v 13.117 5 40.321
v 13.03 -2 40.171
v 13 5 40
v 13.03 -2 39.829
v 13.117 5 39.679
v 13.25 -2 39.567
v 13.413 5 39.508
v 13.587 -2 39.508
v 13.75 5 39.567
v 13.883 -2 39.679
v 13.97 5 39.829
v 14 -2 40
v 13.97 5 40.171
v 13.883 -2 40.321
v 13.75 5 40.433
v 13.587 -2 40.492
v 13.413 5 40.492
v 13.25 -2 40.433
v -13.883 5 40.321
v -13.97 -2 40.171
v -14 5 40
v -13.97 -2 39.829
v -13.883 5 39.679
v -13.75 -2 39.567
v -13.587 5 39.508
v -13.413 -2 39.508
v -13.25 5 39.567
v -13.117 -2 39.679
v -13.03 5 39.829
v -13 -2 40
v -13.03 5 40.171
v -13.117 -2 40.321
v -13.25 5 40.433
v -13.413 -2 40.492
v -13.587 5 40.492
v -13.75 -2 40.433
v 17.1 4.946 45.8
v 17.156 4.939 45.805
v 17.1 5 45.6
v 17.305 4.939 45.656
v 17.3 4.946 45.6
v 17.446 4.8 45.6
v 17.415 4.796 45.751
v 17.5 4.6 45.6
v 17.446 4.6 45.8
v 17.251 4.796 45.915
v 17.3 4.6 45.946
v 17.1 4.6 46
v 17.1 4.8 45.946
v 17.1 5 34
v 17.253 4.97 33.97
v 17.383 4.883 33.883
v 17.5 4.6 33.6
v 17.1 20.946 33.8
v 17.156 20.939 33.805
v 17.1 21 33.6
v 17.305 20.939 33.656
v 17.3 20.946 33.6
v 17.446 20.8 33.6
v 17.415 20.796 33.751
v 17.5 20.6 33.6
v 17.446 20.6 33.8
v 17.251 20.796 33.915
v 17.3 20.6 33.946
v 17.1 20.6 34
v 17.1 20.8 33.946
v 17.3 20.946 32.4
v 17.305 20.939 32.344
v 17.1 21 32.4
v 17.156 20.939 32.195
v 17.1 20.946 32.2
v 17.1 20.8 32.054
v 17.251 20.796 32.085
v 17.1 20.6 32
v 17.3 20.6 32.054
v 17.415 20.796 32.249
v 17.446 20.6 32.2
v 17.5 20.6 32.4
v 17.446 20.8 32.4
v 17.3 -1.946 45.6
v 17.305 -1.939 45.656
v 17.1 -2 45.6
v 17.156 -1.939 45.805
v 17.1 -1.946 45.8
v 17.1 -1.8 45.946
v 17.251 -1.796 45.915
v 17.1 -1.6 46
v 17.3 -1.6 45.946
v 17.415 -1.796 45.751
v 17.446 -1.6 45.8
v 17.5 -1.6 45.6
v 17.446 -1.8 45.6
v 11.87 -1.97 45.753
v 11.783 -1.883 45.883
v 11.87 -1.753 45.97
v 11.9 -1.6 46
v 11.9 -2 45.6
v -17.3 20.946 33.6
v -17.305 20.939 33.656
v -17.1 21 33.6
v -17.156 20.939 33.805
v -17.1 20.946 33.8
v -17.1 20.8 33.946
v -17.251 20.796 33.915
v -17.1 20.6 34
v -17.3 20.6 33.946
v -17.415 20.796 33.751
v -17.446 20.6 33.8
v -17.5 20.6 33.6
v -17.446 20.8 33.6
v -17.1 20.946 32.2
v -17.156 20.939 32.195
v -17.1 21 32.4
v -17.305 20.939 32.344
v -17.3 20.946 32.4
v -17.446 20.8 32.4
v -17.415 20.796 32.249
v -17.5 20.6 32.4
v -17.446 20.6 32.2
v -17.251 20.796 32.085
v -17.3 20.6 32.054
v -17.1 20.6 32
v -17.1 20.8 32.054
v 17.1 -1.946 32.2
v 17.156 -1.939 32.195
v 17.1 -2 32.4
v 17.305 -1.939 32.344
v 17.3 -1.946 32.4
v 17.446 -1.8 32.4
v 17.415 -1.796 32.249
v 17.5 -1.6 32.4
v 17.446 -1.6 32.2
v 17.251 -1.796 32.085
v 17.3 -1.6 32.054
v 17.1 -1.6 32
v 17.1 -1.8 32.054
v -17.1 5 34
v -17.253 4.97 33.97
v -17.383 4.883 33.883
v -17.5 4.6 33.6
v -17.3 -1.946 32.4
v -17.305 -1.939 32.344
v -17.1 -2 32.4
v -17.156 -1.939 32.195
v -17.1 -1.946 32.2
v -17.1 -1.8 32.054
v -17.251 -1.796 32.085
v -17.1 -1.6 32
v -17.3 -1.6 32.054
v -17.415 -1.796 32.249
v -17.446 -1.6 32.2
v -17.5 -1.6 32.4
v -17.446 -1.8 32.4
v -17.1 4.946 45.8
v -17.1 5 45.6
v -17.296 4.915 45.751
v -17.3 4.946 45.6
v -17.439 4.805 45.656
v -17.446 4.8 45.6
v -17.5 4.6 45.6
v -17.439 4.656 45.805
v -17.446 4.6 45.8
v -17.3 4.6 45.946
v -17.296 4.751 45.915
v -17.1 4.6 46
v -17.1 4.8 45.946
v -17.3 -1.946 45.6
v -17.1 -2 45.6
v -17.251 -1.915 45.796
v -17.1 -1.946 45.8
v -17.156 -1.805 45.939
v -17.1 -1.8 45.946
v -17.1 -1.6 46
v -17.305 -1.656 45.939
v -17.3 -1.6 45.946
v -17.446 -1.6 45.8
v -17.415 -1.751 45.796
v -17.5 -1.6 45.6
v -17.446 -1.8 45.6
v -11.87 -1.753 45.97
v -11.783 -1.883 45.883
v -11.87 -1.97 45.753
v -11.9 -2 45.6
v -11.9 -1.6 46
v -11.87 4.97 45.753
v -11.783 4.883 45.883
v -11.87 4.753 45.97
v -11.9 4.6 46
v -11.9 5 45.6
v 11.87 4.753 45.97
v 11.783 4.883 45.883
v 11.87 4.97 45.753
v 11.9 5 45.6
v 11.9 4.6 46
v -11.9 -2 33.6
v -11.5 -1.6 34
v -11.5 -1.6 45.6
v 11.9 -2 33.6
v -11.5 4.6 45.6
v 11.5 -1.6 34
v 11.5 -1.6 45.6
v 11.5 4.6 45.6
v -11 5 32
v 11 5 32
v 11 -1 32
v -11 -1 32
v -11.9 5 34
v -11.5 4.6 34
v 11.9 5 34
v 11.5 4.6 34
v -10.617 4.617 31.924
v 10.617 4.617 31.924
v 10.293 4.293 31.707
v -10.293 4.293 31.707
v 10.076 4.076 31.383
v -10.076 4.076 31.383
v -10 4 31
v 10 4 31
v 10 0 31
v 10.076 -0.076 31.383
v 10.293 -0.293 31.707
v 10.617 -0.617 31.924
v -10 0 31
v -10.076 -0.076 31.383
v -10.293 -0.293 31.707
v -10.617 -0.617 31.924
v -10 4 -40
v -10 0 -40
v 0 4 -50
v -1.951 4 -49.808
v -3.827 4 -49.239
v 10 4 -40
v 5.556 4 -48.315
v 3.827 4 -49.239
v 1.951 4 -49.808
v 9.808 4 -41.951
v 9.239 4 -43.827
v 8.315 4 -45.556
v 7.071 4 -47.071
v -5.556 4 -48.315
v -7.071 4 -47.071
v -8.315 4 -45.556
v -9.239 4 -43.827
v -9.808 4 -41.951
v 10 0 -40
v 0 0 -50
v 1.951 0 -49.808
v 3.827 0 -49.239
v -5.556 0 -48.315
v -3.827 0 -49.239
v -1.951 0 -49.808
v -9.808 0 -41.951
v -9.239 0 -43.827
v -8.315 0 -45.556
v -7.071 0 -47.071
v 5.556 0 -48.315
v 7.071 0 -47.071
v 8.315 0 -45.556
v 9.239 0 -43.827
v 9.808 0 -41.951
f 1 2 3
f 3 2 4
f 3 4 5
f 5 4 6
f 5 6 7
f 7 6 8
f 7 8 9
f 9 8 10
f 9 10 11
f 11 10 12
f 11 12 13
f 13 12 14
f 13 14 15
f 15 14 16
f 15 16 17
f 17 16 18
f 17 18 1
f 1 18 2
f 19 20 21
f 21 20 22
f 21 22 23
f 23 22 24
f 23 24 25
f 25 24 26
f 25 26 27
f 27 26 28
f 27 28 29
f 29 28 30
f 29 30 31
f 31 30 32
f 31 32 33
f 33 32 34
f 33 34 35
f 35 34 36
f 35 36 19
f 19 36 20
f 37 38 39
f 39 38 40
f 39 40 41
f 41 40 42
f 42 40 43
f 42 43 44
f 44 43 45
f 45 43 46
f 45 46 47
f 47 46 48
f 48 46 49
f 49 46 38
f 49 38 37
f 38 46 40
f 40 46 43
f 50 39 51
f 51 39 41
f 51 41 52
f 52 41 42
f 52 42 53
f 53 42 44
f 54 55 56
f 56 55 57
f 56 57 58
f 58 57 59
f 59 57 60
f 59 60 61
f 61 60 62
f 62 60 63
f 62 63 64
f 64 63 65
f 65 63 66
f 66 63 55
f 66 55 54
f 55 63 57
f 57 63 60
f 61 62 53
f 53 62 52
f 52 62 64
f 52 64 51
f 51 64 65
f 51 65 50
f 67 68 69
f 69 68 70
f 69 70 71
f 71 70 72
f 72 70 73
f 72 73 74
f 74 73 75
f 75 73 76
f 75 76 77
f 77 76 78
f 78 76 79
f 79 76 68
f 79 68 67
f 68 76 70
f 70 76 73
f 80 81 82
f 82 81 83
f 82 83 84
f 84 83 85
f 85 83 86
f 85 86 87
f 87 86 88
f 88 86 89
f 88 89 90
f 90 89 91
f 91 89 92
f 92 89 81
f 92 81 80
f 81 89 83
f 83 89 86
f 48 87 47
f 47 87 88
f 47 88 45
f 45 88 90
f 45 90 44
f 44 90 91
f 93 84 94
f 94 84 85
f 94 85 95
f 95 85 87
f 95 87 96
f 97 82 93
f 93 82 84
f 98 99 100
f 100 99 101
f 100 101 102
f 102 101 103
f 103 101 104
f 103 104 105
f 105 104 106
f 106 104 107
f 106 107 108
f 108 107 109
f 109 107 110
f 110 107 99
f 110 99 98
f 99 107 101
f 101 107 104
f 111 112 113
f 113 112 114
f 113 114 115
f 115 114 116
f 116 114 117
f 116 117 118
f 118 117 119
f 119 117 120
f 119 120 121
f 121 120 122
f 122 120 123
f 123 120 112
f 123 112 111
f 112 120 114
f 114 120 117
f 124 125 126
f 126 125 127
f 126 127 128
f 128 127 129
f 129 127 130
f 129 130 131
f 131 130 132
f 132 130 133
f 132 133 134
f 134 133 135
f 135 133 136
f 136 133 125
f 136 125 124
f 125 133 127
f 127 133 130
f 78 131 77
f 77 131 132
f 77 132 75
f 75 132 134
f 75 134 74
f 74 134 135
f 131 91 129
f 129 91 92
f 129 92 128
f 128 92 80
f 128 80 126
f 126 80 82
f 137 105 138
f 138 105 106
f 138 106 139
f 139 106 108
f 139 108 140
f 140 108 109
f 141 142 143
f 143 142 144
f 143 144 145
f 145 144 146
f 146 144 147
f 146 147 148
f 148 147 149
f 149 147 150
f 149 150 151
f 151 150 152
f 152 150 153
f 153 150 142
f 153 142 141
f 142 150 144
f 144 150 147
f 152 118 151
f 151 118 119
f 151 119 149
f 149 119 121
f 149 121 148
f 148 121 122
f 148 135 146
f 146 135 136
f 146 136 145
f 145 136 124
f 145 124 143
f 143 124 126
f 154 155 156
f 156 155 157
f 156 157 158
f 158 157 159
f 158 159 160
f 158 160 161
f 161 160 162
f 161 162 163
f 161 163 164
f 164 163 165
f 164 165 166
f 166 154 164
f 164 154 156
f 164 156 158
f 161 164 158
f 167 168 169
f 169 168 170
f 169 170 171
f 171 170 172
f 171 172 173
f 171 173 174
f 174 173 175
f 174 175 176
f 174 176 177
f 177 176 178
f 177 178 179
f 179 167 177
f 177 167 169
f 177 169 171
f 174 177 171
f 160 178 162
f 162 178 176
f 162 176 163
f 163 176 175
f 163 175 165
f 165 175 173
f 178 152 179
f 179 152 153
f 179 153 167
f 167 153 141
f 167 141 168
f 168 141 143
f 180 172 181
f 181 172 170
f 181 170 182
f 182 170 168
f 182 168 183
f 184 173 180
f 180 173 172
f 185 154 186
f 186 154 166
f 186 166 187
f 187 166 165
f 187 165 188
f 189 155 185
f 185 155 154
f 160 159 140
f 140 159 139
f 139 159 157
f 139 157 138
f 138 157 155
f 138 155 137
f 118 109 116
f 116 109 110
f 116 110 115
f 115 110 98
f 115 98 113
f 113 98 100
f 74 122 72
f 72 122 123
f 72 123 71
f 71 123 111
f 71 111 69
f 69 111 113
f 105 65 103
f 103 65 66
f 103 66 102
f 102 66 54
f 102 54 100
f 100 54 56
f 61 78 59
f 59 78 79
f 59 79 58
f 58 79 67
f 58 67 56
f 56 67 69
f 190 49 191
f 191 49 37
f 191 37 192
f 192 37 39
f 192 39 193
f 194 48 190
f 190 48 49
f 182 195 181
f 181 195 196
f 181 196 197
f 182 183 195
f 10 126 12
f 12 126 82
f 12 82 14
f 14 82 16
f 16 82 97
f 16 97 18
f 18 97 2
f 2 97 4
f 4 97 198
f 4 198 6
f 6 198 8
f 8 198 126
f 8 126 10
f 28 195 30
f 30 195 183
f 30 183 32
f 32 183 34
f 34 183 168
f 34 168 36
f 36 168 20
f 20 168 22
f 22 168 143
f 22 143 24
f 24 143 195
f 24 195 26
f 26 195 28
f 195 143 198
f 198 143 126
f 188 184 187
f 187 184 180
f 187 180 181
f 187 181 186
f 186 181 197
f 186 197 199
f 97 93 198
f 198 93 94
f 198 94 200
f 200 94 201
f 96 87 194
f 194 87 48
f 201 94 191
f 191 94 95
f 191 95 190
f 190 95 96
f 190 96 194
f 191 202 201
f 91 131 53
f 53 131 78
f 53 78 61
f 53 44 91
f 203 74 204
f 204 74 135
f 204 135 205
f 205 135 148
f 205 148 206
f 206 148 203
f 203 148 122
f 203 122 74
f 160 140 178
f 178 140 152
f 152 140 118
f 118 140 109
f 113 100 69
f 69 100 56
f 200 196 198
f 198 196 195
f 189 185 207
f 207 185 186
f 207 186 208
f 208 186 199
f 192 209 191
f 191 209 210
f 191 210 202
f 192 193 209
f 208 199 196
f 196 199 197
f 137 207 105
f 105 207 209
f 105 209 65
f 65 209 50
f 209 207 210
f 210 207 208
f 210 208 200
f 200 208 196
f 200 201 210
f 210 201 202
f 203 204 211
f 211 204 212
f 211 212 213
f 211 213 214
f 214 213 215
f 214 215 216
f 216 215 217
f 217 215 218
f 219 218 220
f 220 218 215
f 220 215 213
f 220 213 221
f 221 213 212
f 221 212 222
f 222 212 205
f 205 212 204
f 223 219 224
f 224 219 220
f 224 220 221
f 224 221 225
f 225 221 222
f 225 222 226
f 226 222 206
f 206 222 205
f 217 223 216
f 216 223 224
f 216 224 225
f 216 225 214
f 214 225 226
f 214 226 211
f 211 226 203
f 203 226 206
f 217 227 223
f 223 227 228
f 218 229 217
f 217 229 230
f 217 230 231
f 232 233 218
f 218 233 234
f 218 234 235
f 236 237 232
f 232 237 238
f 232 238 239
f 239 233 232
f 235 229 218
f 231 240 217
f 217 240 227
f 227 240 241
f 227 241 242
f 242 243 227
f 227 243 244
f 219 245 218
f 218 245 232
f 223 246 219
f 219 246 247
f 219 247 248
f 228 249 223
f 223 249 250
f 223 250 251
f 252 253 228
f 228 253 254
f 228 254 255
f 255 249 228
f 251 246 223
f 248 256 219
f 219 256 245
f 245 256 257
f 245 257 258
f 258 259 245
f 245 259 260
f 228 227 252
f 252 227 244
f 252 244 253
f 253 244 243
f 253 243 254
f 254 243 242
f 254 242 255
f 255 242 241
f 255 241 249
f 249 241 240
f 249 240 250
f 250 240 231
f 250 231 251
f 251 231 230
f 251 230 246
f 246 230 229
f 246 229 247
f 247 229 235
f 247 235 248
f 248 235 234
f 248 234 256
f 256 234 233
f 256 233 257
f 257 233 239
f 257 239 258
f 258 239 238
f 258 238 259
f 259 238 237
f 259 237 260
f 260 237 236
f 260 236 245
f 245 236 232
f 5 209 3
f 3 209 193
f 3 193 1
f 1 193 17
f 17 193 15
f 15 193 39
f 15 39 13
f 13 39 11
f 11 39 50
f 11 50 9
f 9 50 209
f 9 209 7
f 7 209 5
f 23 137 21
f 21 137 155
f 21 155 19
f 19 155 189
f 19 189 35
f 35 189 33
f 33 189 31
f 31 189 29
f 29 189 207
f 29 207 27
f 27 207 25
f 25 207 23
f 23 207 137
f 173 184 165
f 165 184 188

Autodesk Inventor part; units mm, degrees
ref_plane "YZ Plane" through (0, 0, 0) normal (1, 0, 0) x (0, 1, 0)
ref_plane "XZ Plane" through (0, 0, 0) normal (0, 1, 0) x (-1, 0, 0)
ref_plane "XY Plane" through (0, 0, 0) normal (0, 0, 1) x (1, 0, 0)
sketch "Skizze1" plane through (0, 0, 0) normal (0, 1, 0) x (-1, 0, 0)
  line L0 (-10, -50) -> (10, -50)
  line L1 (10, -50) -> (10, 50)
  line L2 (10, 50) -> (-10, 50)
  line L3 (-10, 50) -> (-10, -50)
  line L4 (-10, -50) -> (10, 50) construction
  line L5 (10, -50) -> (-10, 50) construction
  point P0 (0, 0)
  dimension "d0" = 20
  dimension "d1" = 100
extrude "Extrusion1" add sketch "Skizze1" along normal blind 4
fillet "Rundung1" radius 10 4 edges at (10, 2, -50) (-10, 2, -50) (10, 2, 50) (-10, 2, 50)
sketch "Skizze2" plane through (0, 0, 0) normal (0, -1, 0) x (1, 0, 0)
  point P0 (0, 0)
sketch "Skizze3" plane through (0, 0, 0) normal (0, -1, 0) x (1, 0, 0)
  line L0 (-17.5, 34) -> (-17.5, 46)
  line L1 (17.5, 46) -> (17.5, 34)
  line L2 (-11.5, 46) -> (-11.5, 34)
  line L3 (11.5, 46) -> (11.5, 34)
  line L4 (0, -70) -> (0, 70) projected
  line L5 (-17.5, 46) -> (-11.5, 46)
  line L6 (11.5, 46) -> (17.5, 46)
  line L7 (17.5, 34) -> (11.5, 34)
  line L8 (-11.5, 34) -> (-17.5, 34)
  point P0 (0, 0)
  point P1 (0, 34)
  point P2 (11.5, 40)
  point P3 (17.5, 40)
  point P4 (-11.5, 40)
  point P5 (-17.5, 40)
  point P6 (14.5, 34)
  point P7 (-14.5, 34)
  dimension "d6" = 12
  dimension "d7" = 35
  dimension "d11" = 23
  dimension "d12" = 34
  dimension "d13" = 6
sketch "Skizze4" plane through (0, 0, 0) normal (0, -1, 0) x (1, 0, 0)
  arc A0 (10, 40) -> (-10, 40) centre (0, 40) ccw projected
  line L0 (-11.5, 34) -> (-17.5, 34) projected
  line L1 (11.5, 46) -> (11.5, 34) projected
  line L2 (-11.5, 34) -> (11.5, 34)
  line L3 (11.5, 34) -> (11.5, 53)
  line L4 (11.5, 53) -> (-11.5, 53)
  line L5 (-11.5, 53) -> (-11.5, 34)
  point P0 (0, 0)
  dimension "d14" = 19
extrude "Extrusion2" cut sketch "Skizze4" against normal blind 4
extrude "Extrusion3" add sketch "Skizze3" along normal blind 2 and the other way blind 5
sketch "Skizze5" plane through (0, 0, 0) normal (0, -1, 0) x (1, 0, 0)
  line L0 (-17.5, 34) -> (-11.5, 34) projected
  line L1 (11.5, 34) -> (17.5, 34) projected
  line L2 (-17.5, 34) -> (17.5, 34)
  line L3 (17.5, 34) -> (17.5, 32)
  line L4 (17.5, 32) -> (-17.5, 32)
  line L5 (-17.5, 32) -> (-17.5, 34)
  point P0 (0, 0)
  dimension "d21" = 2
extrude "Extrusion4" add sketch "Skizze5" along normal blind 2 and the other way blind 21
fillet "Rundung2" radius 1 4 edges at (10, 2, 32) (0, 0, 32) (0, 4, 32) (-10, 2, 32)
chamfer "Fasen1" distance 0.4 angle 45 7 edges at (-11.5, -2, 40) (-11.5, 1.5, 46) (11.5, -2, 40) (11.5, 1.5, 46) (-11.5, 5, 40) (11.5, 5, 40) (0, -2, 34)
fillet "Rundung3" radius 0.4 19 edges at (-14.7, -2, 46) (-14.7, 5, 46) (-17.5, 1.5, 46) (14.7, 5, 46) (14.7, -2, 46) (17.5, 1.5, 46) (17.5, -2, 39) (17.5, 5, 40) (17.5, 13, 34) (17.5, 9.5, 32) (0, 21, 34) (0, -2, 32) (-17.5, 13, 34) (-17.5, 21, 33) (-17.5, 9.5, 32) (-17.5, -2, 39) (-17.5, 5, 40) (17.5, 21, 33) (0, 21, 32)
sketch "Skizze6" plane through (0, -2, 0) normal (0, -1, 0) x (1, 0, 0)
  line L0 (-17.1, 45.6) -> (-11.9, 45.6) projected
  line L1 (11.9, 45.6) -> (17.1, 45.6) projected
  line L2 (11.5, 34) -> (-11.5, 34) projected
  line L3 (0, -69.2) -> (0, 65.2) projected
  point P0 (0, 0)
  point P1 (-13.5, 40)
  point P2 (13.5, 40)
  dimension "d31" = 6
  dimension "d32" = 27
hole "Bohrung1" at (-13.5, -2, 40) at (13.5, -2, 40) direction (0, 1, 0) diameter 1 end through all
properties part number "L1"
